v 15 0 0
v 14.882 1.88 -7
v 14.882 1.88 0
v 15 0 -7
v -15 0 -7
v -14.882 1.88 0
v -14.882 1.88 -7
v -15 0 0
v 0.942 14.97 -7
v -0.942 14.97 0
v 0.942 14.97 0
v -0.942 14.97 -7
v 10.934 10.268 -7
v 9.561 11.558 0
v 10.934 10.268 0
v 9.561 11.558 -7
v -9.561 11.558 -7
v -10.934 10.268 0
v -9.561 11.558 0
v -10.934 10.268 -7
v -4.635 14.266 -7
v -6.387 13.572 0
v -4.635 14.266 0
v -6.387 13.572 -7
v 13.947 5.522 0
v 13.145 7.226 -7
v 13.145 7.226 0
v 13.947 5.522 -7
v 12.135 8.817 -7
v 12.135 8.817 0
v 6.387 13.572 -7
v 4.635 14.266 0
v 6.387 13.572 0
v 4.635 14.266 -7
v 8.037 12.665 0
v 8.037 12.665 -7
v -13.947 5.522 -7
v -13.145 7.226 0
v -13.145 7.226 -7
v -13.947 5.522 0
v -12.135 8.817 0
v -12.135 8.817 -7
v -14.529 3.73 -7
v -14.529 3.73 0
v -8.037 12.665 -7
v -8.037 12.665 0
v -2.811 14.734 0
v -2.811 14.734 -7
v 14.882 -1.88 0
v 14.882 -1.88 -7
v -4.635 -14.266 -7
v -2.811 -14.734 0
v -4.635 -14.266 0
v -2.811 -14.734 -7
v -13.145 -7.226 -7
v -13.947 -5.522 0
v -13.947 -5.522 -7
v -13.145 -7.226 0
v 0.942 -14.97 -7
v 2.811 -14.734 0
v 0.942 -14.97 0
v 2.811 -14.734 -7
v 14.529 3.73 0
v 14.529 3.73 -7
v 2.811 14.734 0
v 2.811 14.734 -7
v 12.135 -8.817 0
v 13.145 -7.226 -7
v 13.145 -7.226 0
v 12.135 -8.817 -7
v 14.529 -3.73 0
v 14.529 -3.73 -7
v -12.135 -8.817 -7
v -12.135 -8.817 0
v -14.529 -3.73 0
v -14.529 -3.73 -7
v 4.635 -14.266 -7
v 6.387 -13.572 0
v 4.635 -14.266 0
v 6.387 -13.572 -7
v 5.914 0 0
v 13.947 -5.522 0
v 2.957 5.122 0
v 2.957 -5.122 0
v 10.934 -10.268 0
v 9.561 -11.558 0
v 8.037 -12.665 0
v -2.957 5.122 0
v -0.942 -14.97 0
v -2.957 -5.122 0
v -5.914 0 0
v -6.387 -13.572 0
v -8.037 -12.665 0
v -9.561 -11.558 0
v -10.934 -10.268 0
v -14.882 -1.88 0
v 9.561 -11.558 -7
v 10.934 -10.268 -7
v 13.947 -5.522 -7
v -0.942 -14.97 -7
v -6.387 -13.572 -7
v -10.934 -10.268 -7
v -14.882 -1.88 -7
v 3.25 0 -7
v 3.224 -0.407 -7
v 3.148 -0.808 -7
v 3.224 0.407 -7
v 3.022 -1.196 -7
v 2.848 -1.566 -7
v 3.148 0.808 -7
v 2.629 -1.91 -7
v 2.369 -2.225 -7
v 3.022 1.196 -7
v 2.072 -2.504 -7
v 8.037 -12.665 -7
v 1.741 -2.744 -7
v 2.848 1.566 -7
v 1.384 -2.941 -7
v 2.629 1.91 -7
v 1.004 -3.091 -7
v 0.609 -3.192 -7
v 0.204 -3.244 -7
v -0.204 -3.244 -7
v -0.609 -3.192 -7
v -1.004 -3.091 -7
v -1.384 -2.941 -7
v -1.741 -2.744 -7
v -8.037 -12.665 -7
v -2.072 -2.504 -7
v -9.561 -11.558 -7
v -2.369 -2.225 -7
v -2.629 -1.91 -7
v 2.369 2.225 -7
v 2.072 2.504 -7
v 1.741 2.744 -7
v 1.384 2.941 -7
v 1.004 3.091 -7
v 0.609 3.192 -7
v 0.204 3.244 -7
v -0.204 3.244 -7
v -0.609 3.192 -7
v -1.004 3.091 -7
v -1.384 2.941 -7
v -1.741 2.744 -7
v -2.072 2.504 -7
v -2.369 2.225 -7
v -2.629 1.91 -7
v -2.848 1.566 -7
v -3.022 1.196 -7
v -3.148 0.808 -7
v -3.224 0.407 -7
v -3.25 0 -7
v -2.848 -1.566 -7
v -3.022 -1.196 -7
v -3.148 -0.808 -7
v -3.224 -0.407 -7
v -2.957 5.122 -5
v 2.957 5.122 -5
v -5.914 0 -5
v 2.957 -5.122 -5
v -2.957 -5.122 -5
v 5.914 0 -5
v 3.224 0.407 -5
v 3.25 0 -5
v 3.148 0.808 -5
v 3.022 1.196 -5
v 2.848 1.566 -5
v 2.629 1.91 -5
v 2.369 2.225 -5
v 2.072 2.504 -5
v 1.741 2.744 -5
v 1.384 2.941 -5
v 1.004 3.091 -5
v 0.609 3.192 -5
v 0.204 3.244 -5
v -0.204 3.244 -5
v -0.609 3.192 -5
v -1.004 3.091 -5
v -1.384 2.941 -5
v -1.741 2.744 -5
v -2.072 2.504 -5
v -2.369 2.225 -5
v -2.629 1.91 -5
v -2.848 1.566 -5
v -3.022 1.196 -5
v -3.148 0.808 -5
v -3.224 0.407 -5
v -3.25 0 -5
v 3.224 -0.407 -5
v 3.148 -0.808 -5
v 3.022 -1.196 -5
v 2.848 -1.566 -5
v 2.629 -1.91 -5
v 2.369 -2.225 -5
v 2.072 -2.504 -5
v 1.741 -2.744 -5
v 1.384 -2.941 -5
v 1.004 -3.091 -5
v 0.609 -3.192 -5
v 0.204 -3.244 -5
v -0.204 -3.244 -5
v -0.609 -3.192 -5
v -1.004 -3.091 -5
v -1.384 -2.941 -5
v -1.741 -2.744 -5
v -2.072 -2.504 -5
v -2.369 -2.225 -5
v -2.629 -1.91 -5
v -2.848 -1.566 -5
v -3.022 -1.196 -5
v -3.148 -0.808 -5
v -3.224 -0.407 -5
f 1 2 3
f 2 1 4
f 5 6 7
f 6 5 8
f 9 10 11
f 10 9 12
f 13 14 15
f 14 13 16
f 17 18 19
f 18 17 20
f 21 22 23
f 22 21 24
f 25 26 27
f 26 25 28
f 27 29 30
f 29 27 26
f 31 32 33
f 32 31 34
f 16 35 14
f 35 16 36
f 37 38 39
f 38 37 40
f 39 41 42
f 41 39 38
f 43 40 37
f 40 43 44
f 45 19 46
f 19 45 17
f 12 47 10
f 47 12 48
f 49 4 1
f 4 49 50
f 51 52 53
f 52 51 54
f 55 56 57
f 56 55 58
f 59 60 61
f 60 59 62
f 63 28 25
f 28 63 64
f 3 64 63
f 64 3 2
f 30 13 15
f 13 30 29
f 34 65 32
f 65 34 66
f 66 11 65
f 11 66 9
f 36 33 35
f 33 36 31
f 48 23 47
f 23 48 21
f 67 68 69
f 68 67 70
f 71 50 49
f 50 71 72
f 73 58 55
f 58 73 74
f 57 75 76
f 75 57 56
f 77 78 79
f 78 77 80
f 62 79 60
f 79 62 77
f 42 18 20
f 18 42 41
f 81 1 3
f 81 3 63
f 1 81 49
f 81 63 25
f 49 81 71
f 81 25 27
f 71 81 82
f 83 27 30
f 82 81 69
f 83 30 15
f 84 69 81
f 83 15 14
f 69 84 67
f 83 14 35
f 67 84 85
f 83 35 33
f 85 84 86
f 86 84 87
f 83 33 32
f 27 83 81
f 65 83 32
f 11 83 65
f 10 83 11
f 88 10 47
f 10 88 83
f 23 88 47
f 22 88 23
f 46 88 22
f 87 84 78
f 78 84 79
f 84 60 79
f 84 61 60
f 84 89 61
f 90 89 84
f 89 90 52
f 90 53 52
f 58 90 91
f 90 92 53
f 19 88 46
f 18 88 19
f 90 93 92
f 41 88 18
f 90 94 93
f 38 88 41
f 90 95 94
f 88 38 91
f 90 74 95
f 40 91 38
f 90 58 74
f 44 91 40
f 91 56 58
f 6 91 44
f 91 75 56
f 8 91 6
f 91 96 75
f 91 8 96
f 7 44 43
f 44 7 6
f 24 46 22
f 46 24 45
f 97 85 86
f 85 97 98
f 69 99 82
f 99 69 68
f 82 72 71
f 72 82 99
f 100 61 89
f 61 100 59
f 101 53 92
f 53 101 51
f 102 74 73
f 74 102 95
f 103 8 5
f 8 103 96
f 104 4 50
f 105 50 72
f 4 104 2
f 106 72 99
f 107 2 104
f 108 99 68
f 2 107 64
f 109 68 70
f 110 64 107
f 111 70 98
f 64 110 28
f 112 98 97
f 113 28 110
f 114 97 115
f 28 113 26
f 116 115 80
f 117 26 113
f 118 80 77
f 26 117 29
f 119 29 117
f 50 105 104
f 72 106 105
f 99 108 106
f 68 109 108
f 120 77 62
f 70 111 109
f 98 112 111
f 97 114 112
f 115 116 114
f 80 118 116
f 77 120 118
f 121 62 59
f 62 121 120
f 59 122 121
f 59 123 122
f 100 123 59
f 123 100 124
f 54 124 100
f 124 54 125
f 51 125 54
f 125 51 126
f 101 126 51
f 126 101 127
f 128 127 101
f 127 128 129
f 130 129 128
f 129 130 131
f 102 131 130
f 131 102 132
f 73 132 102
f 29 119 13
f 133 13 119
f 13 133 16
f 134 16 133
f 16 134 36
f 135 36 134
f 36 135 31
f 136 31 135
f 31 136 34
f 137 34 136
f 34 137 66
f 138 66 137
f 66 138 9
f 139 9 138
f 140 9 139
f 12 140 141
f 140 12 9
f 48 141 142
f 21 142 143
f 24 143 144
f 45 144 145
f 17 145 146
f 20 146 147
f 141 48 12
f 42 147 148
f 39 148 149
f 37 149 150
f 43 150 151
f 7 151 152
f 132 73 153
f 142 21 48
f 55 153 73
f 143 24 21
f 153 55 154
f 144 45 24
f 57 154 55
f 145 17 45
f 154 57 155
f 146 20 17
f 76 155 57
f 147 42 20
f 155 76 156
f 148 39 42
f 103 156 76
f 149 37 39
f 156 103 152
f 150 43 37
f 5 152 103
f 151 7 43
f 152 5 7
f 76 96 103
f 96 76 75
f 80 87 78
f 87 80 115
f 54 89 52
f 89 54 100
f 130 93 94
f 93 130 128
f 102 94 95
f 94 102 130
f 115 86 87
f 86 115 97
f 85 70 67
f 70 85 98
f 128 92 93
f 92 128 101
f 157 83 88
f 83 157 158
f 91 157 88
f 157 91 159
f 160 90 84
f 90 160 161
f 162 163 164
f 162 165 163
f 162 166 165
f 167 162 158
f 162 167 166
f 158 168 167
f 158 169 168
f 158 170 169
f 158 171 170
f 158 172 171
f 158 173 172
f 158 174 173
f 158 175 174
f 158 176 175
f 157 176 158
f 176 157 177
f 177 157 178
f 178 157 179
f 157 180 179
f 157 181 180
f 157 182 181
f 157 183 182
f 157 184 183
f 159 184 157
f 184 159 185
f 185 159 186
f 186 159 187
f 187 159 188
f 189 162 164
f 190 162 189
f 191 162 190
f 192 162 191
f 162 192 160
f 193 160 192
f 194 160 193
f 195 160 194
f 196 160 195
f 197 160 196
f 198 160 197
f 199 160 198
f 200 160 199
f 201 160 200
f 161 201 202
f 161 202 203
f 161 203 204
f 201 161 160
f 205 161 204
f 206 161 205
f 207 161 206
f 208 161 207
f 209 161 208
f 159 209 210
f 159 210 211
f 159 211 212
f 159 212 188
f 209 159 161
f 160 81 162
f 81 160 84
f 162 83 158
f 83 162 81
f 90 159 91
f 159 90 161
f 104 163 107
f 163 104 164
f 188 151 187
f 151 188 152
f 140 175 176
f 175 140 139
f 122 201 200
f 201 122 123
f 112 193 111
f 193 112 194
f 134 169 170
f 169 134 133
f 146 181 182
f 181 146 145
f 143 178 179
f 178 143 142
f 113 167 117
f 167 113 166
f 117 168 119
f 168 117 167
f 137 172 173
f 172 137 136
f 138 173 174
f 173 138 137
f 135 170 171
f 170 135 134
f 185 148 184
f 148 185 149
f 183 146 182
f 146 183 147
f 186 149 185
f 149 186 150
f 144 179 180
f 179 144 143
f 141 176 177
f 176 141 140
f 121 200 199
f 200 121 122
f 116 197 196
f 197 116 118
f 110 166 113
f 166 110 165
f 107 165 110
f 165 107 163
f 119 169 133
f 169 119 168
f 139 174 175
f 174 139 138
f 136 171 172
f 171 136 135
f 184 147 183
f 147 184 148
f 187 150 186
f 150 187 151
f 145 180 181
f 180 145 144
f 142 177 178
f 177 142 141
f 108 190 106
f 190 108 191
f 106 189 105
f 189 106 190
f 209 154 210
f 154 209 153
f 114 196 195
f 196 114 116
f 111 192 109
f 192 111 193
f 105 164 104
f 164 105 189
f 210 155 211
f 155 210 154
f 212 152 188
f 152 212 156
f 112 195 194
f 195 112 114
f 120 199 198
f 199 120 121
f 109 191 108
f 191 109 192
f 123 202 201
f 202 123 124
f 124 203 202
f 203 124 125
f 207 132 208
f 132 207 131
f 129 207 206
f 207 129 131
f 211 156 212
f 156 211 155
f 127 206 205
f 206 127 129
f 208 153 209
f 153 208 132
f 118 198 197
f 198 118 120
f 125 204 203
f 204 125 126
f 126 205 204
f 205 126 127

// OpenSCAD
$fn = 50;


difference() {
	union() {
		translate(v = [0, 0, -7.0000000000]) {
			cylinder(h = 7.0000000000, r = 15.0000000000);
		}
		translate(v = [0, 0, -5.5000000000]) {
			cylinder(h = 5.5000000000, r = 2.8750000000);
		}
	}
	union() {
		translate(v = [0, 0, 0]) {
			rotate(a = [0, 0, 0]) {
				difference() {
					union() {
						translate(v = [0, 0, -5]) {
							#linear_extrude(height = 5) {
								polygon(points = [[5.9142500000, 0.0000000000], [2.9571250000, 5.1218907443], [-2.9571250000, 5.1218907443], [-5.9142500000, 0.0000000000], [-2.9571250000, -5.1218907443], [2.9571250000, -5.1218907443]]);
							}
						}
					}
					union();
				}
			}
		}
		#translate(v = [0, 0, -100.0000000000]) {
			cylinder(h = 200, r = 3.2500000000);
		}
	}
}
